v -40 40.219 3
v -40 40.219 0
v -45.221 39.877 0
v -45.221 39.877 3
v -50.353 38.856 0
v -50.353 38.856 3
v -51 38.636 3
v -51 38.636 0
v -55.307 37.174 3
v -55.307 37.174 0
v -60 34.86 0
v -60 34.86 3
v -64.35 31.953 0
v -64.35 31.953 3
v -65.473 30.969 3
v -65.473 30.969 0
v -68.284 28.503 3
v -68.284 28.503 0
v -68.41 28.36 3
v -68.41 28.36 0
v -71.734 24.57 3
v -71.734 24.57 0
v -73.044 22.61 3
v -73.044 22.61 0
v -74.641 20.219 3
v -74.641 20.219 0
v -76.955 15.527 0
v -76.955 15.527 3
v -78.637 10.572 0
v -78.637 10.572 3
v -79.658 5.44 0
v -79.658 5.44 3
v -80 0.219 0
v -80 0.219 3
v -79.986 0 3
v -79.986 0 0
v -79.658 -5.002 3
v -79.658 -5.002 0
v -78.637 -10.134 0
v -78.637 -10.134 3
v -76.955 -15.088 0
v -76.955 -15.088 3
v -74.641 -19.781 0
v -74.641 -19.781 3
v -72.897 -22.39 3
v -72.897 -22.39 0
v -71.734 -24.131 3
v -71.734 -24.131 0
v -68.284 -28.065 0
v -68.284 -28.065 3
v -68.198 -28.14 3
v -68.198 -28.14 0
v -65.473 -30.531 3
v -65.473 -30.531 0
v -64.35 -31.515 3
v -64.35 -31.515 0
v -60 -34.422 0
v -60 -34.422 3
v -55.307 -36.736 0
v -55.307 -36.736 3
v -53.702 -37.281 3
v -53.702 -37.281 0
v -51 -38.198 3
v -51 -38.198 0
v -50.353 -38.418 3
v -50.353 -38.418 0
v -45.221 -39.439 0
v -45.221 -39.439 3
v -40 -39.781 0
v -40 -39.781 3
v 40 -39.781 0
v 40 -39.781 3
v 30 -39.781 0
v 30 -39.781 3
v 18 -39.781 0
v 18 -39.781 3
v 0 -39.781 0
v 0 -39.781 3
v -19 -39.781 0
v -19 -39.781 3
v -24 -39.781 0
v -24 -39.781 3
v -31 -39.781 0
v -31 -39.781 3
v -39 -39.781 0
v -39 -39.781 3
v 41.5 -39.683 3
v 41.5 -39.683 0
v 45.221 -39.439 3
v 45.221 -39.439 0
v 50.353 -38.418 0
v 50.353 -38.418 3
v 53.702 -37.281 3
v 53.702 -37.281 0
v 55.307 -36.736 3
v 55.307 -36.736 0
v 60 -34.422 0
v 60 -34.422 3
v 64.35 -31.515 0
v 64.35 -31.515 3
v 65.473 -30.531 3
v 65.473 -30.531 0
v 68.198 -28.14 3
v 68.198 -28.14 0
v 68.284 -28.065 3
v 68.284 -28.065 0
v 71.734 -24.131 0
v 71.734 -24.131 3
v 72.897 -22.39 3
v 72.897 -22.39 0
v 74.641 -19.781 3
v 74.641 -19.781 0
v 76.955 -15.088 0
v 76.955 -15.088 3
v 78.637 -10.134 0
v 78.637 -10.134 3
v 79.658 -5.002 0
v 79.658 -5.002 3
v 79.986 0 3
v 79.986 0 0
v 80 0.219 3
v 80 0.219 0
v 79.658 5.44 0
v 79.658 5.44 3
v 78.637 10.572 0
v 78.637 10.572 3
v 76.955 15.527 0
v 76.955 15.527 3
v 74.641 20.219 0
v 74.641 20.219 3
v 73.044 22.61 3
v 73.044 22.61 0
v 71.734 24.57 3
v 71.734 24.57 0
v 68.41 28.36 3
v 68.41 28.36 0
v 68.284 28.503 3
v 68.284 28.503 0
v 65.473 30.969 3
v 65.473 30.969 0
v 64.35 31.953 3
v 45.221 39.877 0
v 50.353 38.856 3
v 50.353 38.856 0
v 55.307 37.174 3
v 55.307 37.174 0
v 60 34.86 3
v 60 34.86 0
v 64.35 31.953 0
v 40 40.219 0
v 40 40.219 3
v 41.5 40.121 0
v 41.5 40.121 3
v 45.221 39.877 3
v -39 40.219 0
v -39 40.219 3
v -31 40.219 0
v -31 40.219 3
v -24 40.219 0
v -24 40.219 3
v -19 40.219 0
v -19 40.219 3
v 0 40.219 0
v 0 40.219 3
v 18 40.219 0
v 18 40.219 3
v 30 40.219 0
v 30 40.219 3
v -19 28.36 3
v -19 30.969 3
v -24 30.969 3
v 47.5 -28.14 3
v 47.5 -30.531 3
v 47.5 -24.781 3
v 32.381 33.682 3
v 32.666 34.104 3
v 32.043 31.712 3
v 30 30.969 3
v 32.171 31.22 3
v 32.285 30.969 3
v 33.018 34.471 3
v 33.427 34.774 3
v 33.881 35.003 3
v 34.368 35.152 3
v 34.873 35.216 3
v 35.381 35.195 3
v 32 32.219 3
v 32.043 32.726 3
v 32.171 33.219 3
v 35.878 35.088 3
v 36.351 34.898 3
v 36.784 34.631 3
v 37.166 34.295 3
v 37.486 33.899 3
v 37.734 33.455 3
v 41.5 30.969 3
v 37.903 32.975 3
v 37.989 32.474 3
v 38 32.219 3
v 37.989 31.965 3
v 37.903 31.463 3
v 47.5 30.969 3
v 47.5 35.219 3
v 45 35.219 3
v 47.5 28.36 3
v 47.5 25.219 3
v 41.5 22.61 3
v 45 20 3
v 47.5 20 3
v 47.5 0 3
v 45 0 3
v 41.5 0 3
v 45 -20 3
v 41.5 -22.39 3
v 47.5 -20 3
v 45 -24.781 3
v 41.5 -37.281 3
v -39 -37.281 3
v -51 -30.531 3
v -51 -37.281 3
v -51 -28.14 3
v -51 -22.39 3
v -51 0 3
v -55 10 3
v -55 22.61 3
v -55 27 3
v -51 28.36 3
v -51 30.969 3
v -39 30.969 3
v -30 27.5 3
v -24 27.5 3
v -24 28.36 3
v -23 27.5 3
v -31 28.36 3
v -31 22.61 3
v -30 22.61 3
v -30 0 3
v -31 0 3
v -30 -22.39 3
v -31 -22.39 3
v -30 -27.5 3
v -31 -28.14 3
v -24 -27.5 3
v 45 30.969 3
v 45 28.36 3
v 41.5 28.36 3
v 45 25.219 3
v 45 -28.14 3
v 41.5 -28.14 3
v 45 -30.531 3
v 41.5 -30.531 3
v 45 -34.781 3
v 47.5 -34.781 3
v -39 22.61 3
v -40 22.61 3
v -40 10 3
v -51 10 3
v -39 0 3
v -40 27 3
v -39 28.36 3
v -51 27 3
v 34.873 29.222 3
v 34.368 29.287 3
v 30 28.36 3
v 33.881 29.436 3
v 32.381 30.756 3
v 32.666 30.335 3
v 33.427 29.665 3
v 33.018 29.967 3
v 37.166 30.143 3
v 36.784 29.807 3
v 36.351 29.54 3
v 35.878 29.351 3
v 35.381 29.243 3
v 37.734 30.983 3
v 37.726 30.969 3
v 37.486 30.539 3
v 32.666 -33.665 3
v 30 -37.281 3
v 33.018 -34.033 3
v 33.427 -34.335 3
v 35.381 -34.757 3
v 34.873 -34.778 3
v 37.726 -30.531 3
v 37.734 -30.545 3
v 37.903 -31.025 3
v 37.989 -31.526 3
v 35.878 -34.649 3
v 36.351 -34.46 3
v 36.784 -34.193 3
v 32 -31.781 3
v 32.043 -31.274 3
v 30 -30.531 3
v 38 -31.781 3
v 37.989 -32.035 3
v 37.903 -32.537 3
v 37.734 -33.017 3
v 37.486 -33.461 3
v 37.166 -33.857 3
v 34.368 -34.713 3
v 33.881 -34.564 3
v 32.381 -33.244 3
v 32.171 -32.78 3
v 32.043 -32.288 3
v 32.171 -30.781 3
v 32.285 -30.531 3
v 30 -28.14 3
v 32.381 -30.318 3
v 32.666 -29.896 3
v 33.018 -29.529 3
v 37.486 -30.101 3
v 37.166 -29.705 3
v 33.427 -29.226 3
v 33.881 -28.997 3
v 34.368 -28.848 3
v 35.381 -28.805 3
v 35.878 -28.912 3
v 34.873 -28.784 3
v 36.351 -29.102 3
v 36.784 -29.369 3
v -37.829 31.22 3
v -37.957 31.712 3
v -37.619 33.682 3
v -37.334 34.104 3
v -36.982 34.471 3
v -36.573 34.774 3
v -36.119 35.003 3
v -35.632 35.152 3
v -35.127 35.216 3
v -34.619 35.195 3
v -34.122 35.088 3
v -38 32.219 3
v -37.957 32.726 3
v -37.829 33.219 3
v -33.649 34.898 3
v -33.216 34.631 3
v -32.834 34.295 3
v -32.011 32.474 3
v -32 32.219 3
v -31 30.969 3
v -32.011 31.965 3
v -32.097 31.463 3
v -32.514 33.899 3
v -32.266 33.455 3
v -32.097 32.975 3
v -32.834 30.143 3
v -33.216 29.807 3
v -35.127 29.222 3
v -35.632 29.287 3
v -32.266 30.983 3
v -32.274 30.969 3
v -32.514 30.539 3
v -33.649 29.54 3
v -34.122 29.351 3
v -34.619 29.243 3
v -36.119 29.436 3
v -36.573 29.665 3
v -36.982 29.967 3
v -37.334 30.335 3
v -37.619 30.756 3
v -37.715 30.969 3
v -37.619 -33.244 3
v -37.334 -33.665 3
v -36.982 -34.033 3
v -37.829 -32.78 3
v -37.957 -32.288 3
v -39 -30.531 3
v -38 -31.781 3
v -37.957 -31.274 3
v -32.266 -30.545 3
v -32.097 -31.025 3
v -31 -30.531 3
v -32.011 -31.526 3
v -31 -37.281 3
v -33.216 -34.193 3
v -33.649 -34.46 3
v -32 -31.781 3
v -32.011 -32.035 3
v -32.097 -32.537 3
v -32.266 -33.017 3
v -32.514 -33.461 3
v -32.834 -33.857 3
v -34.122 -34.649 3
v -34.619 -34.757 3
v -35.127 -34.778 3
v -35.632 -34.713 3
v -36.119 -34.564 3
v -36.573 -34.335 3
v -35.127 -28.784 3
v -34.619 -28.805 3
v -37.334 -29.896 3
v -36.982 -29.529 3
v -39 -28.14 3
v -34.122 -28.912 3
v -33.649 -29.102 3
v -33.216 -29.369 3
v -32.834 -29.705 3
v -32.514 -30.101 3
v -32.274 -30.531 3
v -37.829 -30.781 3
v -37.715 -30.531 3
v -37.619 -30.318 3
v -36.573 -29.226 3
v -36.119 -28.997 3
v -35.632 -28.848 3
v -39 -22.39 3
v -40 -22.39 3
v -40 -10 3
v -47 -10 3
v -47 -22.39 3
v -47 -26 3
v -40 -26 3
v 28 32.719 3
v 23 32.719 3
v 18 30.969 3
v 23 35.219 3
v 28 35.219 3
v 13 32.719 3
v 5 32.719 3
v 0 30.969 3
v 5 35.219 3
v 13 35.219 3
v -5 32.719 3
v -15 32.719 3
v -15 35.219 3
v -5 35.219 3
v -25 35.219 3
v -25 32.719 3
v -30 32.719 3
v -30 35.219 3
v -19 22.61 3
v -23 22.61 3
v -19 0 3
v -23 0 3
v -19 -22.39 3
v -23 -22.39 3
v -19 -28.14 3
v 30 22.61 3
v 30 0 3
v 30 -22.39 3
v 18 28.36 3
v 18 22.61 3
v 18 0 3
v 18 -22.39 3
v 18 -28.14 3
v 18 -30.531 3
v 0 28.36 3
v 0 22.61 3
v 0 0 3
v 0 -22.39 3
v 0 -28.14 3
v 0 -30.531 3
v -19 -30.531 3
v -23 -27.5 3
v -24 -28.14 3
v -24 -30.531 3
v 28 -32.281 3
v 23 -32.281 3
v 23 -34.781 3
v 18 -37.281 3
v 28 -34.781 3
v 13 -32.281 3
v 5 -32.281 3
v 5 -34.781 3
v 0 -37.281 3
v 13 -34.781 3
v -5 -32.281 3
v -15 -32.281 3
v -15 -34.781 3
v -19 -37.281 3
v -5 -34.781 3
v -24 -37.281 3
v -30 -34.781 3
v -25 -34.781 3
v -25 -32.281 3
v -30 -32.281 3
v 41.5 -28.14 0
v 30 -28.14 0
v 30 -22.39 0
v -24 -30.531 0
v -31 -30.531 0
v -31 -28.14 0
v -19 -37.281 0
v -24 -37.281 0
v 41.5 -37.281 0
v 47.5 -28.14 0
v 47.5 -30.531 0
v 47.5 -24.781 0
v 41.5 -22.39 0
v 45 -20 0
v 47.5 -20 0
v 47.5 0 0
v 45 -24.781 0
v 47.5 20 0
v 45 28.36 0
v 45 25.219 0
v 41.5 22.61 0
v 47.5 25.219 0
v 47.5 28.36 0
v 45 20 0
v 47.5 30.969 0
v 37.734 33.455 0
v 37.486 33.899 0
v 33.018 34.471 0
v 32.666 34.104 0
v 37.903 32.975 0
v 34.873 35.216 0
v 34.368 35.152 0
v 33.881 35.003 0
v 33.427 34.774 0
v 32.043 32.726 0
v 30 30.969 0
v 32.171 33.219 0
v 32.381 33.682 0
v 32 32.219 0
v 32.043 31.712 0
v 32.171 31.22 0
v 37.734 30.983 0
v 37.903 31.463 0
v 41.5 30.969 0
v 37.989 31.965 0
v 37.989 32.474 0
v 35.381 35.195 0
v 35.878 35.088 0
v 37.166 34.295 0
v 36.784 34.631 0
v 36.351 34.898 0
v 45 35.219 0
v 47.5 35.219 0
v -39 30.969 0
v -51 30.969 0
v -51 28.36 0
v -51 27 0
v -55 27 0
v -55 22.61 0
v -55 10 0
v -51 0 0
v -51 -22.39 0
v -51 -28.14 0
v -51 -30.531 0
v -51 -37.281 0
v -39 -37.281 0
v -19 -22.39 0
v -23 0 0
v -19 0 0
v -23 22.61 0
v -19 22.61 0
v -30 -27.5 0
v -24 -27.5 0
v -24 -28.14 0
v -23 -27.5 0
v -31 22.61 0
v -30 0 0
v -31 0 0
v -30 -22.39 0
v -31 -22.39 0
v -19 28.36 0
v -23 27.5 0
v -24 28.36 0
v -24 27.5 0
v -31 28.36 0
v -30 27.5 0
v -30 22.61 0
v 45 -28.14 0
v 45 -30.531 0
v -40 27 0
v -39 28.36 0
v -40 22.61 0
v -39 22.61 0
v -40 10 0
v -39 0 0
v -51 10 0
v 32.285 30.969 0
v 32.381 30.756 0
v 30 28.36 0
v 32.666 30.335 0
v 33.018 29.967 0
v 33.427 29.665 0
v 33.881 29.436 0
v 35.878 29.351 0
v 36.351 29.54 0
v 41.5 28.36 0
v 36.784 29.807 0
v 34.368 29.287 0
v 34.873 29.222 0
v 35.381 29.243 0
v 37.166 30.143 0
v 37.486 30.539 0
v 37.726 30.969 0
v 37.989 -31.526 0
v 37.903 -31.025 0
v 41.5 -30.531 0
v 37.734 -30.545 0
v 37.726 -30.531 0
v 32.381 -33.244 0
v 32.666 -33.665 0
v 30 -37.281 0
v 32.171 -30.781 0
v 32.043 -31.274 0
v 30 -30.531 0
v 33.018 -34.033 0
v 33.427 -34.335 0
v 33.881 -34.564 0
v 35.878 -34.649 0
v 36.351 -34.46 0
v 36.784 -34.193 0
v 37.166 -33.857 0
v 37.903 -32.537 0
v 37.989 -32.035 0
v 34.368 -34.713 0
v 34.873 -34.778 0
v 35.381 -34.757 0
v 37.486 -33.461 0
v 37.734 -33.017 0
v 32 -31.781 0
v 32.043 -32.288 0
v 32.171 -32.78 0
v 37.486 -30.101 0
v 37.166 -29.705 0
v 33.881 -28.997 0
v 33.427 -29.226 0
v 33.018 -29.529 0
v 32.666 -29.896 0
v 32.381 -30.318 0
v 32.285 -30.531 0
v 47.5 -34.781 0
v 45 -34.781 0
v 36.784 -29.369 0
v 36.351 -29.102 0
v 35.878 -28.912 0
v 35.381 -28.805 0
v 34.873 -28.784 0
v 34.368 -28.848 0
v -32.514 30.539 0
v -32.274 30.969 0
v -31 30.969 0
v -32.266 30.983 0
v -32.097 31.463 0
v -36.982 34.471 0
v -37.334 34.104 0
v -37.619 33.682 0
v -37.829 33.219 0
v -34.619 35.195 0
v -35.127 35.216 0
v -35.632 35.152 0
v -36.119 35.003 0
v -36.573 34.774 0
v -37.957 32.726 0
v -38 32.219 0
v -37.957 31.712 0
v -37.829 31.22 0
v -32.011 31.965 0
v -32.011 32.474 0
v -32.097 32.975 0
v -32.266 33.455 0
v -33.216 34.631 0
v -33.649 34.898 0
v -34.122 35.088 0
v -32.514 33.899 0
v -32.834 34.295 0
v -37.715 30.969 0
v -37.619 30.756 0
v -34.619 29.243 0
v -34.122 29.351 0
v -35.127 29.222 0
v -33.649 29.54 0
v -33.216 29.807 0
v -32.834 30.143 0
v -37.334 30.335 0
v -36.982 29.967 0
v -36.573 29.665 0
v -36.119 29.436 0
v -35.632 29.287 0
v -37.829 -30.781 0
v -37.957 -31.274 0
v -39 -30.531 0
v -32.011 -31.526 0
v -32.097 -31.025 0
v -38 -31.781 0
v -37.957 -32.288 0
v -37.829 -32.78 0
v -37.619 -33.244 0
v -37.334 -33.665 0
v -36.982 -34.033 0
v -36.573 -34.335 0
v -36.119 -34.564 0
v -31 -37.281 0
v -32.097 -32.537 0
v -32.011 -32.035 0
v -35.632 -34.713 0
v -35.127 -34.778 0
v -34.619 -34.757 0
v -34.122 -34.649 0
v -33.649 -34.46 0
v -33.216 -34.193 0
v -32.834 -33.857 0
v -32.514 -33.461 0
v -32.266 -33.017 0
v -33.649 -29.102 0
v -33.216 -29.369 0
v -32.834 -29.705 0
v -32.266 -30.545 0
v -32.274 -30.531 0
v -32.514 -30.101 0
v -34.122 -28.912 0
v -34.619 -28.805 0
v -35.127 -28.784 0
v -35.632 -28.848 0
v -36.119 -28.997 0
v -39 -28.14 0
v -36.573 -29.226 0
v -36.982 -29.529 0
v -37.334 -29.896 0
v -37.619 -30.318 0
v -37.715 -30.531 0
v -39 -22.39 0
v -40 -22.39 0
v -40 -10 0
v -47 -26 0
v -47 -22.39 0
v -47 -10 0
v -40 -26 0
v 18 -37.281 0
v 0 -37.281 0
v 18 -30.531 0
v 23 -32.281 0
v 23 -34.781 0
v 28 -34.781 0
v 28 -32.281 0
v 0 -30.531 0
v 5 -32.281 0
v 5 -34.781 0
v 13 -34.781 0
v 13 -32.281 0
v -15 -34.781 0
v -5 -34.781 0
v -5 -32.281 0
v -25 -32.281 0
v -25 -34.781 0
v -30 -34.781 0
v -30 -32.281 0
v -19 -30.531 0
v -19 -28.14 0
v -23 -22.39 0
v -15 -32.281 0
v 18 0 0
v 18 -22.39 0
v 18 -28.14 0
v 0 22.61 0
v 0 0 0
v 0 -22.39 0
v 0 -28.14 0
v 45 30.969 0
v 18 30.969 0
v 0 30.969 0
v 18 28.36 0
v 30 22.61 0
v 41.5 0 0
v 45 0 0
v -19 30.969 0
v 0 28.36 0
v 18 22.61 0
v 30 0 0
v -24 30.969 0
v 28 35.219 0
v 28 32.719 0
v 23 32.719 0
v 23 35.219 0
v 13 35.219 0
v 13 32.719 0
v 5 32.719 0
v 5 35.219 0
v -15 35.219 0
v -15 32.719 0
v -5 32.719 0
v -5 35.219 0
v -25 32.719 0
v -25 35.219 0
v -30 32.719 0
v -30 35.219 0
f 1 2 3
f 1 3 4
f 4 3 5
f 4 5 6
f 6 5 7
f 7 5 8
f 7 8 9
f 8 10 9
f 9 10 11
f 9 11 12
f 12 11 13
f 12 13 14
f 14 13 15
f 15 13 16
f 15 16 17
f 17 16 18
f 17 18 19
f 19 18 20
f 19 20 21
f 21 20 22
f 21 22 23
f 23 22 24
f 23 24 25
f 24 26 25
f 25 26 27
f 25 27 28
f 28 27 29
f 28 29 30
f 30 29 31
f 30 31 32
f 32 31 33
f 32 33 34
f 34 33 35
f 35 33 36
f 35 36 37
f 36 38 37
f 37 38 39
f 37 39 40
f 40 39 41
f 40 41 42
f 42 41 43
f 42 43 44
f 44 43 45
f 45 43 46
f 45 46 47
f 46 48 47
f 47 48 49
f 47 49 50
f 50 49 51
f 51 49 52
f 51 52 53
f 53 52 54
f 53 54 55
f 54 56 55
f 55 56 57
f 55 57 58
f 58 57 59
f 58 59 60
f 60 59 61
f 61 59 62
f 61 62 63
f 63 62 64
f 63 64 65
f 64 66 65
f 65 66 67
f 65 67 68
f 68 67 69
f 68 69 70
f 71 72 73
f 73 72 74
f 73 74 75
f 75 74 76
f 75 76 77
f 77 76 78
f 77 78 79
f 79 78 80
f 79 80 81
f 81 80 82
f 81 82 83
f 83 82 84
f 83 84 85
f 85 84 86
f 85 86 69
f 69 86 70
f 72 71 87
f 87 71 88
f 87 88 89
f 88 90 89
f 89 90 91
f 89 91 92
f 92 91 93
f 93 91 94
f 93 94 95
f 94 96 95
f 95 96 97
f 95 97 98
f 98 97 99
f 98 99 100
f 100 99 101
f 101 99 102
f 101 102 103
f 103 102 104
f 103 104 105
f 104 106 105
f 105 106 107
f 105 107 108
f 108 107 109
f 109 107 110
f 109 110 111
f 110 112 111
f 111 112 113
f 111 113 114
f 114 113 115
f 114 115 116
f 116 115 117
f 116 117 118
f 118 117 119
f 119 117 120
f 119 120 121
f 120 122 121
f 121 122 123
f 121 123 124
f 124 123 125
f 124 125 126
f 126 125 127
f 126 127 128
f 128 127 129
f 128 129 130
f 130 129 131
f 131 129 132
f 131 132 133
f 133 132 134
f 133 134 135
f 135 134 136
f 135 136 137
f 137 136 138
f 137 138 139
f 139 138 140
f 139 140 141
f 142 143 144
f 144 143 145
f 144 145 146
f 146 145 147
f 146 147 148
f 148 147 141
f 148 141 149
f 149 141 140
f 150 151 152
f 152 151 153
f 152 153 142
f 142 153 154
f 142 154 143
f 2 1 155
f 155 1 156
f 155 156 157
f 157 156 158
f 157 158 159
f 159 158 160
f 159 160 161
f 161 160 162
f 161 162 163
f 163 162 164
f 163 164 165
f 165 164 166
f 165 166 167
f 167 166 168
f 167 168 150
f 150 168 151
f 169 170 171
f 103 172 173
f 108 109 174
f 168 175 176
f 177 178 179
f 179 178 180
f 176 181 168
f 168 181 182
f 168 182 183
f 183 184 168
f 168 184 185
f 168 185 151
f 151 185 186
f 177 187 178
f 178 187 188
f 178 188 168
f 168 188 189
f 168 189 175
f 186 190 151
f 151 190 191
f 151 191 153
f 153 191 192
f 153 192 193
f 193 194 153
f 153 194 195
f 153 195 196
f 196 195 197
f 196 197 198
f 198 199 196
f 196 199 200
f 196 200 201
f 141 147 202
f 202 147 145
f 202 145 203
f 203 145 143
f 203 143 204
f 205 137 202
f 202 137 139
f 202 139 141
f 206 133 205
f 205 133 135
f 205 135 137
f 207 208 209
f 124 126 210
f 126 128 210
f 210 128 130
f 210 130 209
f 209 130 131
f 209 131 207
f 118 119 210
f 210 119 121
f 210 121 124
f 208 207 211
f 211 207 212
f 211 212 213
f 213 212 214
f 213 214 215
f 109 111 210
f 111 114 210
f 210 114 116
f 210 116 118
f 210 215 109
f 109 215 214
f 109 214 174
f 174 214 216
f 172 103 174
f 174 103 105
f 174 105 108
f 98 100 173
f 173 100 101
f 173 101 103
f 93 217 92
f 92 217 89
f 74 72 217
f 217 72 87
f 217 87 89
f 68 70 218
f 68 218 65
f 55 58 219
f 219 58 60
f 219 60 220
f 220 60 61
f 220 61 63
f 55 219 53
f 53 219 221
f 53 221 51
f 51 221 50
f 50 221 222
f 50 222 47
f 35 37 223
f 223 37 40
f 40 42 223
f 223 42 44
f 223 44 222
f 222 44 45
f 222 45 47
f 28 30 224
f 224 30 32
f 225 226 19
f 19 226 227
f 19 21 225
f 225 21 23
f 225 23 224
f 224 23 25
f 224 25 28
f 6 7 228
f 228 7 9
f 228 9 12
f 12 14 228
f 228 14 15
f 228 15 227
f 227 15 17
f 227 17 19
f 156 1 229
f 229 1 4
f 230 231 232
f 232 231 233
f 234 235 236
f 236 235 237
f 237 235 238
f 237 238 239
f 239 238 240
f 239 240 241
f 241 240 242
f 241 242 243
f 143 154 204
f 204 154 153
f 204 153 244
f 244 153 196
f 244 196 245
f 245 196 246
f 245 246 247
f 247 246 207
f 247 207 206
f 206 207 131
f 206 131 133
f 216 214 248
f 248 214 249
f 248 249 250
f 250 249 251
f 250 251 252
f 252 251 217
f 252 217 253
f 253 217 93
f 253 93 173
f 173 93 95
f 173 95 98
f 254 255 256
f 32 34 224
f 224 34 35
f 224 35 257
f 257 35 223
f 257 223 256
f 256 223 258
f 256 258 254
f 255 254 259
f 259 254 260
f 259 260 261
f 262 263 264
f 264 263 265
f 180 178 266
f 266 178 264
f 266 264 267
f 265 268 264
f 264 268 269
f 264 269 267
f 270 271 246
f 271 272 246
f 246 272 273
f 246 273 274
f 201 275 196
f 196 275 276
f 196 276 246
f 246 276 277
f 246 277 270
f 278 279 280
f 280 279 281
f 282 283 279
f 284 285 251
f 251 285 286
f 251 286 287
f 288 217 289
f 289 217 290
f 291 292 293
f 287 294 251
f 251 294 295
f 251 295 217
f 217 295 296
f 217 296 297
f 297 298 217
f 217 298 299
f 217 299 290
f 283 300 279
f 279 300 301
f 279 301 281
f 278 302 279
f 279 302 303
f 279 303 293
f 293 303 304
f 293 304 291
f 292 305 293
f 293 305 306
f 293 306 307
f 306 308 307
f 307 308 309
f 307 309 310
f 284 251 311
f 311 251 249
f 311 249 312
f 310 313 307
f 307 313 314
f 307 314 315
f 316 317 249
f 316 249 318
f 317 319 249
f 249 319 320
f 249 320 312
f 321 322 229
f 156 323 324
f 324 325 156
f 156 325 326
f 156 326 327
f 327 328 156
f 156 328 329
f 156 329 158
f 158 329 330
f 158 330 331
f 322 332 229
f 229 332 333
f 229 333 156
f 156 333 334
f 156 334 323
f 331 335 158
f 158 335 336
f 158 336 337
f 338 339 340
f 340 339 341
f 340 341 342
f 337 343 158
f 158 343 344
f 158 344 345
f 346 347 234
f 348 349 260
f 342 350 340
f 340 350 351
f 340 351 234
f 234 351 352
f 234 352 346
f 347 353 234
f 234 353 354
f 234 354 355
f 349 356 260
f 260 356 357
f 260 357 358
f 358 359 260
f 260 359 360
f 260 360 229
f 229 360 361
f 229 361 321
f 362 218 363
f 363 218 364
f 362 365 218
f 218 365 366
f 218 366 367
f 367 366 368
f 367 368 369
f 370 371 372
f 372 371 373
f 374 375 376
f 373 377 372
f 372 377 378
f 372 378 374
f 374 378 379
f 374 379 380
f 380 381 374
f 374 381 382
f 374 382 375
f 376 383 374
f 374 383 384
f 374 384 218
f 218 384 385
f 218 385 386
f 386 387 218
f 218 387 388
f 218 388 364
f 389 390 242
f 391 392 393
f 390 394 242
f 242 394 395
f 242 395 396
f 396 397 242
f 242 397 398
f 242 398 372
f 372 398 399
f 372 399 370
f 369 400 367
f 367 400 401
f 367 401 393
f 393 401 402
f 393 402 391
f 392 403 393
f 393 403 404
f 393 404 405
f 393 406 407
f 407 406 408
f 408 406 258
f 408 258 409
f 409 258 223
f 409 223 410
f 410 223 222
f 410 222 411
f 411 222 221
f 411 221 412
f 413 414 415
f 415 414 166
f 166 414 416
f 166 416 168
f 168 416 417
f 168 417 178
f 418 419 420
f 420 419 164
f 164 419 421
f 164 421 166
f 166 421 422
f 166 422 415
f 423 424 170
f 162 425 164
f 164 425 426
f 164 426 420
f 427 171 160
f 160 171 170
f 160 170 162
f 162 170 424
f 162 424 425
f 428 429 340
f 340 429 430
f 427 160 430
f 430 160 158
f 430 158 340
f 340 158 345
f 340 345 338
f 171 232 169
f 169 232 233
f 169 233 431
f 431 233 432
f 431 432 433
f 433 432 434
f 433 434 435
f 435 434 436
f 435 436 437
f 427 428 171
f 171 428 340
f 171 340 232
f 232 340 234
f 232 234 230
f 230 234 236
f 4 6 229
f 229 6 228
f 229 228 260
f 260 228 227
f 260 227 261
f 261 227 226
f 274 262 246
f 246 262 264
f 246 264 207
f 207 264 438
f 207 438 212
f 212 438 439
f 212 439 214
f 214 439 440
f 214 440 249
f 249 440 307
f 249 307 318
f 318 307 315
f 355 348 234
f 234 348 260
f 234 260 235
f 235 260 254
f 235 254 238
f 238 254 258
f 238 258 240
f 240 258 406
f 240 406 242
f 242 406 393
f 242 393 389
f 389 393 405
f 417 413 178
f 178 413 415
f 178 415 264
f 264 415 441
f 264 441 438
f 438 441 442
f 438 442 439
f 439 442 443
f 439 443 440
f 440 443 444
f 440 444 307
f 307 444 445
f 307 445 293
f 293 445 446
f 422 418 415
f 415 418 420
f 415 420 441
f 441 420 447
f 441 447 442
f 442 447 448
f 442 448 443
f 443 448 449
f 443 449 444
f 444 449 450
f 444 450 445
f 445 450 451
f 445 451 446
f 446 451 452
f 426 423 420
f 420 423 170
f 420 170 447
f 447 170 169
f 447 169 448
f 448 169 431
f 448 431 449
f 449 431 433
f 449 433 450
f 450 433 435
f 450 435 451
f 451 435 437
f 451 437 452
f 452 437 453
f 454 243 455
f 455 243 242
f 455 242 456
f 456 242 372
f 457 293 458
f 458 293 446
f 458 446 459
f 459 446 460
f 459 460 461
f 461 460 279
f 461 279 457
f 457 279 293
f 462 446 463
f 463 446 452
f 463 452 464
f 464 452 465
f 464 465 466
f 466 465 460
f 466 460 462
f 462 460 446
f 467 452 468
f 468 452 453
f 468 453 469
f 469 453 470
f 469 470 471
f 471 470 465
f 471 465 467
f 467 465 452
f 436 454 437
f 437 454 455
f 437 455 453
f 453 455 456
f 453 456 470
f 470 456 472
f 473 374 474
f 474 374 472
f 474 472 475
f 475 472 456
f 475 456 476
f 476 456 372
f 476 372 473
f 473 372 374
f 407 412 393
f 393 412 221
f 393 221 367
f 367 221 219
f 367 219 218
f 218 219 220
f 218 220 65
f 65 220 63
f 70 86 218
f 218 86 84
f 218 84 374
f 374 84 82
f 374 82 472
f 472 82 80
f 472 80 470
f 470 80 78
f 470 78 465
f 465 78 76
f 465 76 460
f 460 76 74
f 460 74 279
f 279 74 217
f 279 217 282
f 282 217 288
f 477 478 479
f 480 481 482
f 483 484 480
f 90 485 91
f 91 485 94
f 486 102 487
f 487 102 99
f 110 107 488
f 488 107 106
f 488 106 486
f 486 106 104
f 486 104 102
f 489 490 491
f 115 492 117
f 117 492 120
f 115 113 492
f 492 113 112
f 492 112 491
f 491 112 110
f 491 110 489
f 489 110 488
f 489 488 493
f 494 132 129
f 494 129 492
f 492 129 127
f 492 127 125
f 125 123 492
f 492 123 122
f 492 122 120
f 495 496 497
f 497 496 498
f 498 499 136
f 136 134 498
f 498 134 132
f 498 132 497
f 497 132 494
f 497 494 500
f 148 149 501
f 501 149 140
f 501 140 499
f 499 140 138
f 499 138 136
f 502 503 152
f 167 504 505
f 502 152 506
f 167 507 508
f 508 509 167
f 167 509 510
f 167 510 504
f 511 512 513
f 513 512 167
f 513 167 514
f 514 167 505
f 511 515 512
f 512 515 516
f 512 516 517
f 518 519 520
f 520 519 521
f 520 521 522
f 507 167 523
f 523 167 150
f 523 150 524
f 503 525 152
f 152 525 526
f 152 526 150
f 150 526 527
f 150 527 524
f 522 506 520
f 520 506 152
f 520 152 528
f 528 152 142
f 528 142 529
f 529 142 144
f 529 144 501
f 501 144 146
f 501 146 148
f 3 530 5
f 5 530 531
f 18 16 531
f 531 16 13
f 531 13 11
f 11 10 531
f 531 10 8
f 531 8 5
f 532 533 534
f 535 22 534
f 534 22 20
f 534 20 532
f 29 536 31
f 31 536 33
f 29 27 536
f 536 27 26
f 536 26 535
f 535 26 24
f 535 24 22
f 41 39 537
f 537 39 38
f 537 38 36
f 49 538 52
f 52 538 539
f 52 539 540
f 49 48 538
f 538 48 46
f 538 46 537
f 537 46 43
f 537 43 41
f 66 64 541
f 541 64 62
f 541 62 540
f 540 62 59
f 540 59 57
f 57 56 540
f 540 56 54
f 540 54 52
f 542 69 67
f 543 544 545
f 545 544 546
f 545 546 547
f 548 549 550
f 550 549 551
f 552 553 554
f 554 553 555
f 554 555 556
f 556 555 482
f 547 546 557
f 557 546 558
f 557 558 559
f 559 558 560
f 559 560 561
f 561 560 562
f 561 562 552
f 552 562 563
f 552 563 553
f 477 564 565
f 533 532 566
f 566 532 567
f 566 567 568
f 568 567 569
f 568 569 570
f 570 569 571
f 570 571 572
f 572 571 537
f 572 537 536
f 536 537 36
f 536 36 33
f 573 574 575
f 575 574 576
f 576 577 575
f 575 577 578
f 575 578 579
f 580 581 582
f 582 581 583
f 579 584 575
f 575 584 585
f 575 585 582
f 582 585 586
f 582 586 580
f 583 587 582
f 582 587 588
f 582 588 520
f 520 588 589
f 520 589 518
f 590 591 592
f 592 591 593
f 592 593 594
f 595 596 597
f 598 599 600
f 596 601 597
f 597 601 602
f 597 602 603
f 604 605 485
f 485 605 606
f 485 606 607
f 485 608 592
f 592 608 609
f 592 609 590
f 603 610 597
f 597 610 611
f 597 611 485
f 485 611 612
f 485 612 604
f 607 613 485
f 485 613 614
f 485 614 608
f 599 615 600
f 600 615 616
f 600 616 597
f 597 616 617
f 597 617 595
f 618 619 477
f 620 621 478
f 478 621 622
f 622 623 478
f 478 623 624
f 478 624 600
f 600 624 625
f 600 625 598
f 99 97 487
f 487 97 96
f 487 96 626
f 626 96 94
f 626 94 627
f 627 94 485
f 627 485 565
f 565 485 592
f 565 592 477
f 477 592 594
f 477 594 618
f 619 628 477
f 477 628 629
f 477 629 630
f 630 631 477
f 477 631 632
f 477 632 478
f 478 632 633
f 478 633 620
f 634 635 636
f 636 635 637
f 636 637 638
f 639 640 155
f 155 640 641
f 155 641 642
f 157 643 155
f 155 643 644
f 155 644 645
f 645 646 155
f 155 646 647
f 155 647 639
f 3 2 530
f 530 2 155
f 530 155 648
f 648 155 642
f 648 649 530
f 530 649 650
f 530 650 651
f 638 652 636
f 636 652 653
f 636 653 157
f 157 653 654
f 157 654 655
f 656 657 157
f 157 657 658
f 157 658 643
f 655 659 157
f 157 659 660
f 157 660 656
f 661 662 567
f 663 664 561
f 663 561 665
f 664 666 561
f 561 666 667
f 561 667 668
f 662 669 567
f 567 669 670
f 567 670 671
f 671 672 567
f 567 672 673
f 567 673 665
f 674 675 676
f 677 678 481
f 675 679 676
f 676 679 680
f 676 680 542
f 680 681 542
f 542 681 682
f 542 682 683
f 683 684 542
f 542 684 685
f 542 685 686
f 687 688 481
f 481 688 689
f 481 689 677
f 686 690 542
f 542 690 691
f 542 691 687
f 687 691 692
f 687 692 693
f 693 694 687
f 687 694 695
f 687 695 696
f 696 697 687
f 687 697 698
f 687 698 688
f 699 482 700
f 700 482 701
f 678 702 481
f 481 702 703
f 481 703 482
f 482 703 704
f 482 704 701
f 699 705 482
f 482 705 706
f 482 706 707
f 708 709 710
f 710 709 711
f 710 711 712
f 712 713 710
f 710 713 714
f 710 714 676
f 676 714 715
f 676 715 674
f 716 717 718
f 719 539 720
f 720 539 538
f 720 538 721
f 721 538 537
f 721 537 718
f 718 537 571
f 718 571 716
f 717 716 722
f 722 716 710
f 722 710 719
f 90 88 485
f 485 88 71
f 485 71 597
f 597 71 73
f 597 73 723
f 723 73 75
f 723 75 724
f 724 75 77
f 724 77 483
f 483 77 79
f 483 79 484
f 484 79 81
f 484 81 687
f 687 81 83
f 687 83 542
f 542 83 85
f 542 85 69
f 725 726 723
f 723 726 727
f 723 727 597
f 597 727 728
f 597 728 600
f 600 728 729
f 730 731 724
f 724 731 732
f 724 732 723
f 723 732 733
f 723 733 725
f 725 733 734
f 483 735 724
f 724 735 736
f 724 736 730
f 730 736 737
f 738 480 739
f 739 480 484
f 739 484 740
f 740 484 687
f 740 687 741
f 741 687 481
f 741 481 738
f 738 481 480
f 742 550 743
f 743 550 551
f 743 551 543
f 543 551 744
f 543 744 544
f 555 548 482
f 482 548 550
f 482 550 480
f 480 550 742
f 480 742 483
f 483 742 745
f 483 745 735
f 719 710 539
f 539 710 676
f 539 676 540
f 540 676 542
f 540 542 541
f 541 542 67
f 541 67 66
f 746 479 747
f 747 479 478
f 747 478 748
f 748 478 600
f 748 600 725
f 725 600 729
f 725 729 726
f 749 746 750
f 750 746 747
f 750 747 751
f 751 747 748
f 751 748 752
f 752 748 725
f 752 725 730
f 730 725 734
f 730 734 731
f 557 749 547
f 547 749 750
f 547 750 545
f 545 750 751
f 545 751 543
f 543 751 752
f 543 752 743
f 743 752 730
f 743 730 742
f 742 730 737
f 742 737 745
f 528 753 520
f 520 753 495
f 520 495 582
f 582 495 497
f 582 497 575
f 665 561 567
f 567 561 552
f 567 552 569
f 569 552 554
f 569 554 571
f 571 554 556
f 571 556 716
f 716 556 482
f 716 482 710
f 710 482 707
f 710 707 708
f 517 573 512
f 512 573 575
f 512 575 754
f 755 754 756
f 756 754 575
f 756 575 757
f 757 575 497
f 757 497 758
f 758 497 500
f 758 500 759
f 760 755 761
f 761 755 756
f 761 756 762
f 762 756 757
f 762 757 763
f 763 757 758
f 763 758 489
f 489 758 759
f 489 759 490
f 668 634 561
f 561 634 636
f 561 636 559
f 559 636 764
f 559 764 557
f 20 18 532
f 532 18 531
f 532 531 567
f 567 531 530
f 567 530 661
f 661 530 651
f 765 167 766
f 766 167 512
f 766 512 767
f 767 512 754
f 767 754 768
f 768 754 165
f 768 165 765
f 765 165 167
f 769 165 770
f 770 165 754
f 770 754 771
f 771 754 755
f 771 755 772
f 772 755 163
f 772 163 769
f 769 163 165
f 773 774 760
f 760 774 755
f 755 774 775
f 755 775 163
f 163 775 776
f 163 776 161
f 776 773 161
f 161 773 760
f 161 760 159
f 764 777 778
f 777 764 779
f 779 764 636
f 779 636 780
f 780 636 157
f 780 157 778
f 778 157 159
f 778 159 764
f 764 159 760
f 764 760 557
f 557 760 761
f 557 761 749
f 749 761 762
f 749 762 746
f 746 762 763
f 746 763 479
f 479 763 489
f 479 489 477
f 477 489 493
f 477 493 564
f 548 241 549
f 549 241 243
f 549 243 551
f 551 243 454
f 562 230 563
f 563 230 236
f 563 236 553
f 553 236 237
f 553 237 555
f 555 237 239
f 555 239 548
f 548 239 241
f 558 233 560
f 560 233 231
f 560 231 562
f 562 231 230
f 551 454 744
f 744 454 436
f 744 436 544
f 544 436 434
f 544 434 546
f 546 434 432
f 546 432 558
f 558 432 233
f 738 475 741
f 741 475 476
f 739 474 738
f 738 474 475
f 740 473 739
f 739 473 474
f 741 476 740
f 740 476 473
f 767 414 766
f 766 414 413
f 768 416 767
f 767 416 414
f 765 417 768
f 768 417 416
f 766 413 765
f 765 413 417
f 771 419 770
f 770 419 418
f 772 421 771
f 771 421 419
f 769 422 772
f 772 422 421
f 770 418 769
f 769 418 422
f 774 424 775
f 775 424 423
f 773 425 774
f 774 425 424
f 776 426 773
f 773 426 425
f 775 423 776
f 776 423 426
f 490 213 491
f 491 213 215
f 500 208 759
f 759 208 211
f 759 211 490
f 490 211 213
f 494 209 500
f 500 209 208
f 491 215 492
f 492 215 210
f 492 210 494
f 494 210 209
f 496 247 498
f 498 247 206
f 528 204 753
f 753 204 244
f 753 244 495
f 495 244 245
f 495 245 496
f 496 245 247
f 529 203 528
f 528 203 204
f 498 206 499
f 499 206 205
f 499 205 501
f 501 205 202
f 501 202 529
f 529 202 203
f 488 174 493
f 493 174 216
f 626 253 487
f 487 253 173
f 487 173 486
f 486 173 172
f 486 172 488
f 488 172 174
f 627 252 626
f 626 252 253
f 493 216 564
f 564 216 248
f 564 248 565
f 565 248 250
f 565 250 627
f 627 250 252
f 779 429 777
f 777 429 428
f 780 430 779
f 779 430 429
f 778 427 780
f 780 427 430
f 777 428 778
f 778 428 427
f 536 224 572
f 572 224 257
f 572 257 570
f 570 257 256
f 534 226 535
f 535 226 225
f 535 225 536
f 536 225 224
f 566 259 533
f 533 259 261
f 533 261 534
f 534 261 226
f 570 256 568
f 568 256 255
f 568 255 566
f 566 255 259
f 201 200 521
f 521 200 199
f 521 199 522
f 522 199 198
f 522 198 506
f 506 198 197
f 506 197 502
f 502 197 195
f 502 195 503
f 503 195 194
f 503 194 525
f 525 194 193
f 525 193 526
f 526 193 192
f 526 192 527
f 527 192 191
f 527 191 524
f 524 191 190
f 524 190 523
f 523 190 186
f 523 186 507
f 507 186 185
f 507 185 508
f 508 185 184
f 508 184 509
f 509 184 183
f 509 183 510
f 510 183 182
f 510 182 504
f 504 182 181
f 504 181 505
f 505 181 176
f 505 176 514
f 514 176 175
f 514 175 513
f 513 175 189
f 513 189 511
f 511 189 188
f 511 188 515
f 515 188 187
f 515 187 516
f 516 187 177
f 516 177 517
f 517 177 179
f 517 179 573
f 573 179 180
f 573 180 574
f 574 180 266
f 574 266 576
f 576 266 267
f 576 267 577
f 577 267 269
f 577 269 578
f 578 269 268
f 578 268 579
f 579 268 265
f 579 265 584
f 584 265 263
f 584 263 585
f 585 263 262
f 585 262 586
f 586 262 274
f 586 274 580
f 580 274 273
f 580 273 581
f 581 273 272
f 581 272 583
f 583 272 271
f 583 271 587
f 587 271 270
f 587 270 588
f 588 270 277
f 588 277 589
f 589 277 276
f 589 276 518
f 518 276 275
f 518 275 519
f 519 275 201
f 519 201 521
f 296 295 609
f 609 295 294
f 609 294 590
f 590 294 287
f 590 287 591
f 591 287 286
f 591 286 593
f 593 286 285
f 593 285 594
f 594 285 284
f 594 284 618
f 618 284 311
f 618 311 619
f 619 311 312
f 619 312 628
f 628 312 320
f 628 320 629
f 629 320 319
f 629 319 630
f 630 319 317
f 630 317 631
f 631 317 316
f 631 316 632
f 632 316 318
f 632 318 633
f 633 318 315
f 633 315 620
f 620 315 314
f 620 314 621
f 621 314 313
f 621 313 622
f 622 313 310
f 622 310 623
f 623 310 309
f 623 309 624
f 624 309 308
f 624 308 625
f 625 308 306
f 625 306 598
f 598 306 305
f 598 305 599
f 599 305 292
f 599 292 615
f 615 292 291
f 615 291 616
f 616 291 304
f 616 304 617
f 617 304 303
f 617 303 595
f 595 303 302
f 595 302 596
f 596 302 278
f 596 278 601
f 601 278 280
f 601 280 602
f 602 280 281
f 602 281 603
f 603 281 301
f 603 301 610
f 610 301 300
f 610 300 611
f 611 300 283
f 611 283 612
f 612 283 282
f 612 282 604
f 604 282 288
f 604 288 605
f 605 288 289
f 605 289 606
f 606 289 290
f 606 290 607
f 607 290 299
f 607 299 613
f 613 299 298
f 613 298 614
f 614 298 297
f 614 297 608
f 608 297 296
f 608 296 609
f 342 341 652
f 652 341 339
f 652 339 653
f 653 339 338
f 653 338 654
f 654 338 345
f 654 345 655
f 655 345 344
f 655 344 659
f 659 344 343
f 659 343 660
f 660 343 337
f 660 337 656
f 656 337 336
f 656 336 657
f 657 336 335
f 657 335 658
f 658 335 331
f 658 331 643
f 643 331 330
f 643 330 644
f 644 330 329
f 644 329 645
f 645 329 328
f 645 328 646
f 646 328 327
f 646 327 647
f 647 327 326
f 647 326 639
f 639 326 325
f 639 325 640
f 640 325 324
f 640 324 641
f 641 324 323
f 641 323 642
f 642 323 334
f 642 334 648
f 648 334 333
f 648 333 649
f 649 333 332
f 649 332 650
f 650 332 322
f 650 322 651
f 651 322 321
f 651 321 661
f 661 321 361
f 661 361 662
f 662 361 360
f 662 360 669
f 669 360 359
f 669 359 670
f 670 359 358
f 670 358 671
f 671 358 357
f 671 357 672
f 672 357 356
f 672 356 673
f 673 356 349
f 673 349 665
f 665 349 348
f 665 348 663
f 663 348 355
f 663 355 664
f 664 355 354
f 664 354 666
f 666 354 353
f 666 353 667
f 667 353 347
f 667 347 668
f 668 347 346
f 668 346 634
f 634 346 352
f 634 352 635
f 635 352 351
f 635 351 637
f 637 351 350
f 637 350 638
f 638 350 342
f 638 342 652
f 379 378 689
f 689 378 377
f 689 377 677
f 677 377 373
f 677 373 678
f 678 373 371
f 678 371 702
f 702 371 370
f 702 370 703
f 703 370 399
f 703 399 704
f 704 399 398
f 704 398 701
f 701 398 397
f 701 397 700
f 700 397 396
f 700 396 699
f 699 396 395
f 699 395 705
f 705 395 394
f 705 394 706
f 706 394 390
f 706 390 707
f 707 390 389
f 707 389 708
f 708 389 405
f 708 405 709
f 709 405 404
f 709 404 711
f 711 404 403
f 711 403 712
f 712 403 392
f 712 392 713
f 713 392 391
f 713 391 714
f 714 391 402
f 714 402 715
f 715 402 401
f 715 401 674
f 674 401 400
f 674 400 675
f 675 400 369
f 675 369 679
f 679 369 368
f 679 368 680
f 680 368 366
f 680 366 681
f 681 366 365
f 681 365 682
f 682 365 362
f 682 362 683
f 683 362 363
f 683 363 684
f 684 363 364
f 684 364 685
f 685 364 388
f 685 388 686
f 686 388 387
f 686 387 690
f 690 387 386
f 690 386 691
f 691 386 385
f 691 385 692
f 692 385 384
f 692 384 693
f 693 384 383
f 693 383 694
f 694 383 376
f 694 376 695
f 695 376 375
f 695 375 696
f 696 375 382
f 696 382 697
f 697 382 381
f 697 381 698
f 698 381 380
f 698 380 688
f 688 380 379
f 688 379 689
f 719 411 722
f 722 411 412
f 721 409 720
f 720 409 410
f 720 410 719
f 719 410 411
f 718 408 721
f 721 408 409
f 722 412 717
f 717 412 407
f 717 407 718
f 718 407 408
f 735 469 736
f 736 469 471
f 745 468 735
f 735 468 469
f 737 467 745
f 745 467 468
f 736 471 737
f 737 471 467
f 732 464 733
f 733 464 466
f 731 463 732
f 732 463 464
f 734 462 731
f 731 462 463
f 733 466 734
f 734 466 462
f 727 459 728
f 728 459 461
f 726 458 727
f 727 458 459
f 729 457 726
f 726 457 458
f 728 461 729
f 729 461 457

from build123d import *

# Parameters (mm, degrees)
BOSS_EXTRUDE1_DEPTH = 3
CUT_EXTRUDE1_REACH  = 91.591
SKETCH2_R           = 3
SKETCH2_W           = 7
SKETCH2_H           = 55
SKETCH2_W_2         = 2.5
SKETCH2_H_2         = 40
SKETCH2_H_3         = 10
SKETCH2_W_3         = 5
SKETCH2_H_4         = 2.5
SKETCH2_W_4         = 8
SKETCH2_W_5         = 10
SKETCH2_H_5         = 16
SKETCH2_W_6         = 15
SKETCH2_H_6         = 17


with BuildPart() as part:
    # Sketch1 → Boss-Extrude1 (new body)
    with BuildSketch(Plane.XY):
        with BuildLine():
            Line((40, 40.219178082), (-40, 40.219178082))
            ThreePointArc((-40, 40.219178082), (-80, 0.219178082), (-40, -39.780821918))
            Line((-40, -39.780821918), (40, -39.780821918))
            ThreePointArc((40, -39.780821918), (80, 0.219178082), (40, 40.219178082))
        make_face()
    extrude(amount=BOSS_EXTRUDE1_DEPTH)

    # Sketch2 → Cut-Extrude1 (cut, up to next)
    with BuildSketch(Plane(origin=(0, 0, 0), x_dir=(-1, 0, 0), z_dir=(0, 0, -1)), mode=Mode.PRIVATE) as cut_extrude1_sk1:
        with Locations((-35, 32.219178082)):
            Circle(SKETCH2_R)
    cut_extrude1_tool1 = extrude(cut_extrude1_sk1.sketch, amount=-CUT_EXTRUDE1_REACH, mode=Mode.PRIVATE) & part.part
    # Sketch2 → Cut-Extrude1 (cut, up to next)
    with BuildSketch(Plane(origin=(0, 0, 0), x_dir=(-1, 0, 0), z_dir=(0, 0, -1)), mode=Mode.PRIVATE) as cut_extrude1_sk2:
        with Locations((-35, -31.780821918)):
            Circle(SKETCH2_R)
    cut_extrude1_tool2 = extrude(cut_extrude1_sk2.sketch, amount=-CUT_EXTRUDE1_REACH, mode=Mode.PRIVATE) & part.part
    # Sketch2 → Cut-Extrude1 (cut, up to next)
    with BuildSketch(Plane(origin=(0, 0, 0), x_dir=(-1, 0, 0), z_dir=(0, 0, -1)), mode=Mode.PRIVATE) as cut_extrude1_sk3:
        with Locations((35, 32.219178082)):
            Circle(SKETCH2_R)
    cut_extrude1_tool3 = extrude(cut_extrude1_sk3.sketch, amount=-CUT_EXTRUDE1_REACH, mode=Mode.PRIVATE) & part.part
    # Sketch2 → Cut-Extrude1 (cut, up to next)
    with BuildSketch(Plane(origin=(0, 0, 0), x_dir=(-1, 0, 0), z_dir=(0, 0, -1)), mode=Mode.PRIVATE) as cut_extrude1_sk4:
        with Locations((35, -31.780821918)):
            Circle(SKETCH2_R)
    cut_extrude1_tool4 = extrude(cut_extrude1_sk4.sketch, amount=-CUT_EXTRUDE1_REACH, mode=Mode.PRIVATE) & part.part
    # Sketch2 → Cut-Extrude1 (cut, up to next)
    with BuildSketch(Plane(origin=(0, 0, 0), x_dir=(-1, 0, 0), z_dir=(0, 0, -1)), mode=Mode.PRIVATE) as cut_extrude1_sk5:
        with Locations((26.5, 0)):
            Rectangle(SKETCH2_W, SKETCH2_H)
    cut_extrude1_tool5 = extrude(cut_extrude1_sk5.sketch, amount=-CUT_EXTRUDE1_REACH, mode=Mode.PRIVATE) & part.part
    # Sketch2 → Cut-Extrude1 (cut, up to next)
    with BuildSketch(Plane(origin=(0, 0, 0), x_dir=(-1, 0, 0), z_dir=(0, 0, -1)), mode=Mode.PRIVATE) as cut_extrude1_sk6:
        with Locations((-46.25, 0)):
            Rectangle(SKETCH2_W_2, SKETCH2_H_2)
    cut_extrude1_tool6 = extrude(cut_extrude1_sk6.sketch, amount=-CUT_EXTRUDE1_REACH, mode=Mode.PRIVATE) & part.part
    # Sketch2 → Cut-Extrude1 (cut, up to next)
    with BuildSketch(Plane(origin=(0, 0, 0), x_dir=(-1, 0, 0), z_dir=(0, 0, -1)), mode=Mode.PRIVATE) as cut_extrude1_sk7:
        with Locations((-46.25, 30.219178082)):
            Rectangle(SKETCH2_W_2, SKETCH2_H_3)
    cut_extrude1_tool7 = extrude(cut_extrude1_sk7.sketch, amount=-CUT_EXTRUDE1_REACH, mode=Mode.PRIVATE) & part.part
    # Sketch2 → Cut-Extrude1 (cut, up to next)
    with BuildSketch(Plane(origin=(0, 0, 0), x_dir=(-1, 0, 0), z_dir=(0, 0, -1)), mode=Mode.PRIVATE) as cut_extrude1_sk8:
        with Locations((-46.25, -29.780821918)):
            Rectangle(SKETCH2_W_2, SKETCH2_H_3)
    cut_extrude1_tool8 = extrude(cut_extrude1_sk8.sketch, amount=-CUT_EXTRUDE1_REACH, mode=Mode.PRIVATE) & part.part
    # Sketch2 → Cut-Extrude1 (cut, up to next)
    with BuildSketch(Plane(origin=(0, 0, 0), x_dir=(-1, 0, 0), z_dir=(0, 0, -1)), mode=Mode.PRIVATE) as cut_extrude1_sk9:
        with Locations((27.5, 33.969178082)):
            Rectangle(SKETCH2_W_3, SKETCH2_H_4)
    cut_extrude1_tool9 = extrude(cut_extrude1_sk9.sketch, amount=-CUT_EXTRUDE1_REACH, mode=Mode.PRIVATE) & part.part
    # Sketch2 → Cut-Extrude1 (cut, up to next)
    with BuildSketch(Plane(origin=(0, 0, 0), x_dir=(-1, 0, 0), z_dir=(0, 0, -1)), mode=Mode.PRIVATE) as cut_extrude1_sk10:
        with Locations((27.5, -33.530821918)):
            Rectangle(SKETCH2_W_3, SKETCH2_H_4)
    cut_extrude1_tool10 = extrude(cut_extrude1_sk10.sketch, amount=-CUT_EXTRUDE1_REACH, mode=Mode.PRIVATE) & part.part
    # Sketch2 → Cut-Extrude1 (cut, up to next)
    with BuildSketch(Plane(origin=(0, 0, 0), x_dir=(-1, 0, 0), z_dir=(0, 0, -1)), mode=Mode.PRIVATE) as cut_extrude1_sk11:
        with Locations((-25.5, 33.969178082)):
            Rectangle(SKETCH2_W_3, SKETCH2_H_4)
    cut_extrude1_tool11 = extrude(cut_extrude1_sk11.sketch, amount=-CUT_EXTRUDE1_REACH, mode=Mode.PRIVATE) & part.part
    # Sketch2 → Cut-Extrude1 (cut, up to next)
    with BuildSketch(Plane(origin=(0, 0, 0), x_dir=(-1, 0, 0), z_dir=(0, 0, -1)), mode=Mode.PRIVATE) as cut_extrude1_sk12:
        with Locations((-9, 33.969178082)):
            Rectangle(SKETCH2_W_4, SKETCH2_H_4)
    cut_extrude1_tool12 = extrude(cut_extrude1_sk12.sketch, amount=-CUT_EXTRUDE1_REACH, mode=Mode.PRIVATE) & part.part
    # Sketch2 → Cut-Extrude1 (cut, up to next)
    with BuildSketch(Plane(origin=(0, 0, 0), x_dir=(-1, 0, 0), z_dir=(0, 0, -1)), mode=Mode.PRIVATE) as cut_extrude1_sk13:
        with Locations((10, 33.969178082)):
            Rectangle(SKETCH2_W_5, SKETCH2_H_4)
    cut_extrude1_tool13 = extrude(cut_extrude1_sk13.sketch, amount=-CUT_EXTRUDE1_REACH, mode=Mode.PRIVATE) & part.part
    # Sketch2 → Cut-Extrude1 (cut, up to next)
    with BuildSketch(Plane(origin=(0, 0, 0), x_dir=(-1, 0, 0), z_dir=(0, 0, -1)), mode=Mode.PRIVATE) as cut_extrude1_sk14:
        with Locations((-25.5, -33.530821918)):
            Rectangle(SKETCH2_W_3, SKETCH2_H_4)
    cut_extrude1_tool14 = extrude(cut_extrude1_sk14.sketch, amount=-CUT_EXTRUDE1_REACH, mode=Mode.PRIVATE) & part.part
    # Sketch2 → Cut-Extrude1 (cut, up to next)
    with BuildSketch(Plane(origin=(0, 0, 0), x_dir=(-1, 0, 0), z_dir=(0, 0, -1)), mode=Mode.PRIVATE) as cut_extrude1_sk15:
        with Locations((-9, -33.530821918)):
            Rectangle(SKETCH2_W_4, SKETCH2_H_4)
    cut_extrude1_tool15 = extrude(cut_extrude1_sk15.sketch, amount=-CUT_EXTRUDE1_REACH, mode=Mode.PRIVATE) & part.part
    # Sketch2 → Cut-Extrude1 (cut, up to next)
    with BuildSketch(Plane(origin=(0, 0, 0), x_dir=(-1, 0, 0), z_dir=(0, 0, -1)), mode=Mode.PRIVATE) as cut_extrude1_sk16:
        with Locations((10, -33.530821918)):
            Rectangle(SKETCH2_W_5, SKETCH2_H_4)
    cut_extrude1_tool16 = extrude(cut_extrude1_sk16.sketch, amount=-CUT_EXTRUDE1_REACH, mode=Mode.PRIVATE) & part.part
    # Sketch2 → Cut-Extrude1 (cut, up to next)
    with BuildSketch(Plane(origin=(0, 0, 0), x_dir=(-1, 0, 0), z_dir=(0, 0, -1)), mode=Mode.PRIVATE) as cut_extrude1_sk17:
        with Locations((43.5, -18)):
            Rectangle(SKETCH2_W, SKETCH2_H_5)
    cut_extrude1_tool17 = extrude(cut_extrude1_sk17.sketch, amount=-CUT_EXTRUDE1_REACH, mode=Mode.PRIVATE) & part.part
    # Sketch2 → Cut-Extrude1 (cut, up to next)
    with BuildSketch(Plane(origin=(0, 0, 0), x_dir=(-1, 0, 0), z_dir=(0, 0, -1)), mode=Mode.PRIVATE) as cut_extrude1_sk18:
        with Locations((47.5, 18.5)):
            Rectangle(SKETCH2_W_6, SKETCH2_H_6)
    cut_extrude1_tool18 = extrude(cut_extrude1_sk18.sketch, amount=-CUT_EXTRUDE1_REACH, mode=Mode.PRIVATE) & part.part
    add(cut_extrude1_tool1.solids().sort_by_distance((35, 32.219178, 0))[0], mode=Mode.SUBTRACT)
    add(cut_extrude1_tool2.solids().sort_by_distance((35, -31.780822, 0))[0], mode=Mode.SUBTRACT)
    add(cut_extrude1_tool3.solids().sort_by_distance((-35, 32.219178, 0))[0], mode=Mode.SUBTRACT)
    add(cut_extrude1_tool4.solids().sort_by_distance((-35, -31.780822, 0))[0], mode=Mode.SUBTRACT)
    add(cut_extrude1_tool5.solids().sort_by_distance((-26.5, 0, 0))[0], mode=Mode.SUBTRACT)
    add(cut_extrude1_tool6.solids().sort_by_distance((46.25, 0, 0))[0], mode=Mode.SUBTRACT)
    add(cut_extrude1_tool7.solids().sort_by_distance((46.25, 30.219178, 0))[0], mode=Mode.SUBTRACT)
    add(cut_extrude1_tool8.solids().sort_by_distance((46.25, -29.780822, 0))[0], mode=Mode.SUBTRACT)
    add(cut_extrude1_tool9.solids().sort_by_distance((-27.5, 33.969178, 0))[0], mode=Mode.SUBTRACT)
    add(cut_extrude1_tool10.solids().sort_by_distance((-27.5, -33.530822, 0))[0], mode=Mode.SUBTRACT)
    add(cut_extrude1_tool11.solids().sort_by_distance((25.5, 33.969178, 0))[0], mode=Mode.SUBTRACT)
    add(cut_extrude1_tool12.solids().sort_by_distance((9, 33.969178, 0))[0], mode=Mode.SUBTRACT)
    add(cut_extrude1_tool13.solids().sort_by_distance((-10, 33.969178, 0))[0], mode=Mode.SUBTRACT)
    add(cut_extrude1_tool14.solids().sort_by_distance((25.5, -33.530822, 0))[0], mode=Mode.SUBTRACT)
    add(cut_extrude1_tool15.solids().sort_by_distance((9, -33.530822, 0))[0], mode=Mode.SUBTRACT)
    add(cut_extrude1_tool16.solids().sort_by_distance((-10, -33.530822, 0))[0], mode=Mode.SUBTRACT)
    add(cut_extrude1_tool17.solids().sort_by_distance((-43.5, -18, 0))[0], mode=Mode.SUBTRACT)
    add(cut_extrude1_tool18.solids().sort_by_distance((-47.5, 18.5, 0))[0], mode=Mode.SUBTRACT)


solid = part.part
